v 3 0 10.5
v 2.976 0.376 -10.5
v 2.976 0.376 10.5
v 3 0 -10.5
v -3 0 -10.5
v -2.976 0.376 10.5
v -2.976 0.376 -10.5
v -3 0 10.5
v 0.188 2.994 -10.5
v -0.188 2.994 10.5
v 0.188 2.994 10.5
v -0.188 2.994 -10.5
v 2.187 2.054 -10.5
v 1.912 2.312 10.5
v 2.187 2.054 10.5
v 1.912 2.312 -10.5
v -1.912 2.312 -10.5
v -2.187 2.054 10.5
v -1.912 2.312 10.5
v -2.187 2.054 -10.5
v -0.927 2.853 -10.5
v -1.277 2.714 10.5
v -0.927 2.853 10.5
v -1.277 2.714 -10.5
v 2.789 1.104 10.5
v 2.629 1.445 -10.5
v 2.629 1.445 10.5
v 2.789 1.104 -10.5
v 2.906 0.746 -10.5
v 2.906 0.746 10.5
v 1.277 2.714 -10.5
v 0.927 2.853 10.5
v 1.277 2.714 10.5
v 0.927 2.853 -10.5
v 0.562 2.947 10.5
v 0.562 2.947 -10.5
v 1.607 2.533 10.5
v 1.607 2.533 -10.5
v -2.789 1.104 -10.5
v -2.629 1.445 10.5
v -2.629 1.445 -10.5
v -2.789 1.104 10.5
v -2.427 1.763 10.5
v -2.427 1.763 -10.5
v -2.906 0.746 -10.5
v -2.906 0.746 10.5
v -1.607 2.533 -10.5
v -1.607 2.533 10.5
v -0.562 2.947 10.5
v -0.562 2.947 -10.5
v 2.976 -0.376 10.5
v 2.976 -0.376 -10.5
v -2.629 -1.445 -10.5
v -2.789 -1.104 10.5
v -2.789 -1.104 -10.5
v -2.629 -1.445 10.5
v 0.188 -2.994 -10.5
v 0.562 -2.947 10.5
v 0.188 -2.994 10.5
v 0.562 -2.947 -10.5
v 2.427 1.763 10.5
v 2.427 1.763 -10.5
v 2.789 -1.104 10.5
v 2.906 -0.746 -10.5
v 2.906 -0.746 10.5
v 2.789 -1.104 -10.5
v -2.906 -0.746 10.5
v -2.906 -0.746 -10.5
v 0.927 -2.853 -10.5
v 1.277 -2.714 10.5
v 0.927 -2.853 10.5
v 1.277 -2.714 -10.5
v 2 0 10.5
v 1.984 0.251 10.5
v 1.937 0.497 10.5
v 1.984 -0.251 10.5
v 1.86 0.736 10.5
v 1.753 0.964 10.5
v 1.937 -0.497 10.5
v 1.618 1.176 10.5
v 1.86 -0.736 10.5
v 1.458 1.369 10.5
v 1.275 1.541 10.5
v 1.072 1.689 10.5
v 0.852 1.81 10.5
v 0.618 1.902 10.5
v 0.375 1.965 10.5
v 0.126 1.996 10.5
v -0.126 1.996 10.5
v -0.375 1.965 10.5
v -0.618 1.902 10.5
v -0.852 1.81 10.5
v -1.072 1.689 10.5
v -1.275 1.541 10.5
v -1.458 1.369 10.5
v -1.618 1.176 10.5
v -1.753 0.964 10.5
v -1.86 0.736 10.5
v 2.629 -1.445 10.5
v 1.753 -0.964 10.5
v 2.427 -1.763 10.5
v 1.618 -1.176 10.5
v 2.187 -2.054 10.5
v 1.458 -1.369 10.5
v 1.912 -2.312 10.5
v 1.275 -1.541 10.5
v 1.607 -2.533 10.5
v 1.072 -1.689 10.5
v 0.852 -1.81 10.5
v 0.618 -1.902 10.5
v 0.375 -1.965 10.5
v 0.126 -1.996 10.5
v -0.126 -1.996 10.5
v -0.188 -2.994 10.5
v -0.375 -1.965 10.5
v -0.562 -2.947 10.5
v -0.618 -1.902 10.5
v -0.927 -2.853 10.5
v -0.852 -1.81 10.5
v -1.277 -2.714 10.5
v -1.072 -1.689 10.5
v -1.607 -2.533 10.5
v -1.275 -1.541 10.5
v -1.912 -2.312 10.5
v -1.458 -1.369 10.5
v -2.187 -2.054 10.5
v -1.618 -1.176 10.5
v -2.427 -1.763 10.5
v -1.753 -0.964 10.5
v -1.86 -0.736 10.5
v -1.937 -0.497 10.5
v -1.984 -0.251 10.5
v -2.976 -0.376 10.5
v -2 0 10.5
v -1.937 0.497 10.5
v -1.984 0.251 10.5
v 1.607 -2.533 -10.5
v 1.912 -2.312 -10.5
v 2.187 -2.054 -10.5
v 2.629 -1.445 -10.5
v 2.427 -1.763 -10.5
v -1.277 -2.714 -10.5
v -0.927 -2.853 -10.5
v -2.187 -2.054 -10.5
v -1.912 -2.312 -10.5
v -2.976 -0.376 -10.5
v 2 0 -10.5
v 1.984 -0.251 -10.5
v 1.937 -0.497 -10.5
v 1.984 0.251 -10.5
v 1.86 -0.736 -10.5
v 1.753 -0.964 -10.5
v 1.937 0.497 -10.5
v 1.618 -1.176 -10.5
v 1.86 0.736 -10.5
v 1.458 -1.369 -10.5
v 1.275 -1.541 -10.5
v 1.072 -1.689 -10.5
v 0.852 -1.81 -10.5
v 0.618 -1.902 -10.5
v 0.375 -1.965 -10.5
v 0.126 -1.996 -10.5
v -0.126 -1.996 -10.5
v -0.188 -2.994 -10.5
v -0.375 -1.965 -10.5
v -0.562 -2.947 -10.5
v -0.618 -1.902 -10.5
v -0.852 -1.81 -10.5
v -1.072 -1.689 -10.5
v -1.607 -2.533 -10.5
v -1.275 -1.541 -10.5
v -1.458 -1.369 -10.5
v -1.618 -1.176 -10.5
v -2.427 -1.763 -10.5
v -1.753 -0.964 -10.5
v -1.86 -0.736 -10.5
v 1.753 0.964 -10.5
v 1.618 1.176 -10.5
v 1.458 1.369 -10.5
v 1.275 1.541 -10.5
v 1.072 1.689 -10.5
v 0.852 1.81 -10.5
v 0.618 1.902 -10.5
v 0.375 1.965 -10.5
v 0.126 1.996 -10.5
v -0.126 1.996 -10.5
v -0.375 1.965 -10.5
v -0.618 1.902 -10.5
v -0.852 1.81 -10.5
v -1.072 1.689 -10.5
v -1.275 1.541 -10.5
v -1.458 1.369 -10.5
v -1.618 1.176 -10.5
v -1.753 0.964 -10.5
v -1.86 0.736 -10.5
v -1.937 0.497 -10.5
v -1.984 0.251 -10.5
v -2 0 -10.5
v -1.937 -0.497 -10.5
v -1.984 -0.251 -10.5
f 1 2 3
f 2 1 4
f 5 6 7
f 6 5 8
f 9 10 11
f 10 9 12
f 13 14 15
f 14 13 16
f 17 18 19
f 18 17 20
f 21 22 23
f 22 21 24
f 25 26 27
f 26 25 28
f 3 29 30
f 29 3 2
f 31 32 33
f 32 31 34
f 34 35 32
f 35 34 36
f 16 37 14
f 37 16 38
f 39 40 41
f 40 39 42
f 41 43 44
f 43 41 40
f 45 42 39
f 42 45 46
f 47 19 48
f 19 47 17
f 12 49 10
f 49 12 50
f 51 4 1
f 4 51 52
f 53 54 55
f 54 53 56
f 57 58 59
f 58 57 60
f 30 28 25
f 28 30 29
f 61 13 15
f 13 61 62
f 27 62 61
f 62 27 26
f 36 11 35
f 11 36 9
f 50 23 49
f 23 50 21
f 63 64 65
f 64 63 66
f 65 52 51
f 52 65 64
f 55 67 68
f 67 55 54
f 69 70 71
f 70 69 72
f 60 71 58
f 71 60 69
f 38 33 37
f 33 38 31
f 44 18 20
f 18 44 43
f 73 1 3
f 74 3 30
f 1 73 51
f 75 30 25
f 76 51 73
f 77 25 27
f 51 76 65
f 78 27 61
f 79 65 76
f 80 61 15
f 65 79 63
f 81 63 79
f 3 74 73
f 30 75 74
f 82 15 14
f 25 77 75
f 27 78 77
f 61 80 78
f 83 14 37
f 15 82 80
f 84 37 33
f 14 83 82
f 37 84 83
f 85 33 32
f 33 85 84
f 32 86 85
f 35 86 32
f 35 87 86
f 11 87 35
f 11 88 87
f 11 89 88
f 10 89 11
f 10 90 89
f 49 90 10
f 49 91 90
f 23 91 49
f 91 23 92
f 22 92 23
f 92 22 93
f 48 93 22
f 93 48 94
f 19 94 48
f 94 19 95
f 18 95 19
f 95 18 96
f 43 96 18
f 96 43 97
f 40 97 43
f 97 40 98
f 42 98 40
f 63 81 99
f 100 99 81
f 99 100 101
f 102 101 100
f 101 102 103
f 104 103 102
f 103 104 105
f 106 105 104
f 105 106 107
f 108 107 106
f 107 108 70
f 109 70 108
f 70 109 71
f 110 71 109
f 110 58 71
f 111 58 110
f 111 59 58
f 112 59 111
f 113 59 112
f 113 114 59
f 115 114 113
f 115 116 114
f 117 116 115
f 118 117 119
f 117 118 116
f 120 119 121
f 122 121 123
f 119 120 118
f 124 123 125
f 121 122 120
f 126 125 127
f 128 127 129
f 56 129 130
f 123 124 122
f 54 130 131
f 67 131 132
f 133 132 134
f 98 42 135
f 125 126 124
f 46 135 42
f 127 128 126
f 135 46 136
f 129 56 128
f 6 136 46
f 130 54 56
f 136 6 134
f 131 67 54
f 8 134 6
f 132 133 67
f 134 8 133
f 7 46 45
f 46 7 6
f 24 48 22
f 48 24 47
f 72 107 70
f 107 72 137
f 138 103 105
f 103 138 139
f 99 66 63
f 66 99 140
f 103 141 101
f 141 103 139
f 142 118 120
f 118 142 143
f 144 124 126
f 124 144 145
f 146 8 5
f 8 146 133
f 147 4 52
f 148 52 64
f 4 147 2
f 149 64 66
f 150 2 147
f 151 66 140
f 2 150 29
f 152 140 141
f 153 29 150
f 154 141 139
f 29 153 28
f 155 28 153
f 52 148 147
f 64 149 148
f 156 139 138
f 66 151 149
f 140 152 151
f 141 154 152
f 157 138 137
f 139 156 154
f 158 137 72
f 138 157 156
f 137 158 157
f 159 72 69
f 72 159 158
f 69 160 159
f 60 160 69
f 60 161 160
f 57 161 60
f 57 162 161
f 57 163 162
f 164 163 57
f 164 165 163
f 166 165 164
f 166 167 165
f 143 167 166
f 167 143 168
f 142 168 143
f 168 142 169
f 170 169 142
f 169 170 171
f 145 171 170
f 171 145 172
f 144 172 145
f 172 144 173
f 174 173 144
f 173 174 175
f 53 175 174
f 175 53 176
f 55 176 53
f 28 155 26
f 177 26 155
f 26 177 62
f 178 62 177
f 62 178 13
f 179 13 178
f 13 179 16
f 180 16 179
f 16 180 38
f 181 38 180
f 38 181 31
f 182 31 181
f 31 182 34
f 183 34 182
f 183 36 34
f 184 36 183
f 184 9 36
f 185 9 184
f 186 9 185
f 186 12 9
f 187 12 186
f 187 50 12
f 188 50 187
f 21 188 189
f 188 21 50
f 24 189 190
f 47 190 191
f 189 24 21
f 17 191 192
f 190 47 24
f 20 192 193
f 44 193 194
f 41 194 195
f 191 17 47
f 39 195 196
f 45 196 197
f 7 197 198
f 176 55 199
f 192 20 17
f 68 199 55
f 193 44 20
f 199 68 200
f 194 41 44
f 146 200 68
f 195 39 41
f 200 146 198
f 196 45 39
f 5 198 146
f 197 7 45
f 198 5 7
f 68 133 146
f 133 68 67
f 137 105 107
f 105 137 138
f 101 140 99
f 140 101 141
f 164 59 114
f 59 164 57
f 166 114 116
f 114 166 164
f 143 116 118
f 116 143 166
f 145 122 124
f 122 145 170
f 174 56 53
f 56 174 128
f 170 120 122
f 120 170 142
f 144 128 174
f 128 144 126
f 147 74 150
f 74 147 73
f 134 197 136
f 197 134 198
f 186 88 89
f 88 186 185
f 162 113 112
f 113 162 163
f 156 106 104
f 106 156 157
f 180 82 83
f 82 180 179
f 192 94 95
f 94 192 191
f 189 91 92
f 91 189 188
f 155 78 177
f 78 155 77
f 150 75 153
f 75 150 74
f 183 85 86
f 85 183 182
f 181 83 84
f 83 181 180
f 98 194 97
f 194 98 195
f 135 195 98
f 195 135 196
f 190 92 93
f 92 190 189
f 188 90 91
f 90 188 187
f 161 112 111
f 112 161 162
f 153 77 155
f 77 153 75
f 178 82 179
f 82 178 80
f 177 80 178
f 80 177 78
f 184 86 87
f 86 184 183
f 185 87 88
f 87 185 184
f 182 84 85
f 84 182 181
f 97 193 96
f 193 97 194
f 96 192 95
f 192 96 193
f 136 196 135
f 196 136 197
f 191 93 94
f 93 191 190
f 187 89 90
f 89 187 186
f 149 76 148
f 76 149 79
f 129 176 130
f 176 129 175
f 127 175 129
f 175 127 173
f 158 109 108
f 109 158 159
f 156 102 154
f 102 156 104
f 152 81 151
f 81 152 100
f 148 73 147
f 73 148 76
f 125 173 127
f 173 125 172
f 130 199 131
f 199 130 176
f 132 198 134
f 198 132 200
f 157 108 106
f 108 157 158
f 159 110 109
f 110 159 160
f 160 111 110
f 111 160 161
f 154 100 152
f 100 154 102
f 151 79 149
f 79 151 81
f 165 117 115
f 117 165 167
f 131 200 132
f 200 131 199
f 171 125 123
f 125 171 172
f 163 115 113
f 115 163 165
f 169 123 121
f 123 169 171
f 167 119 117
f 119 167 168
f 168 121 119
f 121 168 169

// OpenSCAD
$fn = 50;


difference() {
	union() {
		translate(v = [0, 0, -10.5000000000]) {
			cylinder(h = 21, r = 3.0000000000);
		}
	}
	union() {
		translate(v = [0, 0, -100.0000000000]) {
			cylinder(h = 200, r = 2.0000000000);
		}
	}
}
